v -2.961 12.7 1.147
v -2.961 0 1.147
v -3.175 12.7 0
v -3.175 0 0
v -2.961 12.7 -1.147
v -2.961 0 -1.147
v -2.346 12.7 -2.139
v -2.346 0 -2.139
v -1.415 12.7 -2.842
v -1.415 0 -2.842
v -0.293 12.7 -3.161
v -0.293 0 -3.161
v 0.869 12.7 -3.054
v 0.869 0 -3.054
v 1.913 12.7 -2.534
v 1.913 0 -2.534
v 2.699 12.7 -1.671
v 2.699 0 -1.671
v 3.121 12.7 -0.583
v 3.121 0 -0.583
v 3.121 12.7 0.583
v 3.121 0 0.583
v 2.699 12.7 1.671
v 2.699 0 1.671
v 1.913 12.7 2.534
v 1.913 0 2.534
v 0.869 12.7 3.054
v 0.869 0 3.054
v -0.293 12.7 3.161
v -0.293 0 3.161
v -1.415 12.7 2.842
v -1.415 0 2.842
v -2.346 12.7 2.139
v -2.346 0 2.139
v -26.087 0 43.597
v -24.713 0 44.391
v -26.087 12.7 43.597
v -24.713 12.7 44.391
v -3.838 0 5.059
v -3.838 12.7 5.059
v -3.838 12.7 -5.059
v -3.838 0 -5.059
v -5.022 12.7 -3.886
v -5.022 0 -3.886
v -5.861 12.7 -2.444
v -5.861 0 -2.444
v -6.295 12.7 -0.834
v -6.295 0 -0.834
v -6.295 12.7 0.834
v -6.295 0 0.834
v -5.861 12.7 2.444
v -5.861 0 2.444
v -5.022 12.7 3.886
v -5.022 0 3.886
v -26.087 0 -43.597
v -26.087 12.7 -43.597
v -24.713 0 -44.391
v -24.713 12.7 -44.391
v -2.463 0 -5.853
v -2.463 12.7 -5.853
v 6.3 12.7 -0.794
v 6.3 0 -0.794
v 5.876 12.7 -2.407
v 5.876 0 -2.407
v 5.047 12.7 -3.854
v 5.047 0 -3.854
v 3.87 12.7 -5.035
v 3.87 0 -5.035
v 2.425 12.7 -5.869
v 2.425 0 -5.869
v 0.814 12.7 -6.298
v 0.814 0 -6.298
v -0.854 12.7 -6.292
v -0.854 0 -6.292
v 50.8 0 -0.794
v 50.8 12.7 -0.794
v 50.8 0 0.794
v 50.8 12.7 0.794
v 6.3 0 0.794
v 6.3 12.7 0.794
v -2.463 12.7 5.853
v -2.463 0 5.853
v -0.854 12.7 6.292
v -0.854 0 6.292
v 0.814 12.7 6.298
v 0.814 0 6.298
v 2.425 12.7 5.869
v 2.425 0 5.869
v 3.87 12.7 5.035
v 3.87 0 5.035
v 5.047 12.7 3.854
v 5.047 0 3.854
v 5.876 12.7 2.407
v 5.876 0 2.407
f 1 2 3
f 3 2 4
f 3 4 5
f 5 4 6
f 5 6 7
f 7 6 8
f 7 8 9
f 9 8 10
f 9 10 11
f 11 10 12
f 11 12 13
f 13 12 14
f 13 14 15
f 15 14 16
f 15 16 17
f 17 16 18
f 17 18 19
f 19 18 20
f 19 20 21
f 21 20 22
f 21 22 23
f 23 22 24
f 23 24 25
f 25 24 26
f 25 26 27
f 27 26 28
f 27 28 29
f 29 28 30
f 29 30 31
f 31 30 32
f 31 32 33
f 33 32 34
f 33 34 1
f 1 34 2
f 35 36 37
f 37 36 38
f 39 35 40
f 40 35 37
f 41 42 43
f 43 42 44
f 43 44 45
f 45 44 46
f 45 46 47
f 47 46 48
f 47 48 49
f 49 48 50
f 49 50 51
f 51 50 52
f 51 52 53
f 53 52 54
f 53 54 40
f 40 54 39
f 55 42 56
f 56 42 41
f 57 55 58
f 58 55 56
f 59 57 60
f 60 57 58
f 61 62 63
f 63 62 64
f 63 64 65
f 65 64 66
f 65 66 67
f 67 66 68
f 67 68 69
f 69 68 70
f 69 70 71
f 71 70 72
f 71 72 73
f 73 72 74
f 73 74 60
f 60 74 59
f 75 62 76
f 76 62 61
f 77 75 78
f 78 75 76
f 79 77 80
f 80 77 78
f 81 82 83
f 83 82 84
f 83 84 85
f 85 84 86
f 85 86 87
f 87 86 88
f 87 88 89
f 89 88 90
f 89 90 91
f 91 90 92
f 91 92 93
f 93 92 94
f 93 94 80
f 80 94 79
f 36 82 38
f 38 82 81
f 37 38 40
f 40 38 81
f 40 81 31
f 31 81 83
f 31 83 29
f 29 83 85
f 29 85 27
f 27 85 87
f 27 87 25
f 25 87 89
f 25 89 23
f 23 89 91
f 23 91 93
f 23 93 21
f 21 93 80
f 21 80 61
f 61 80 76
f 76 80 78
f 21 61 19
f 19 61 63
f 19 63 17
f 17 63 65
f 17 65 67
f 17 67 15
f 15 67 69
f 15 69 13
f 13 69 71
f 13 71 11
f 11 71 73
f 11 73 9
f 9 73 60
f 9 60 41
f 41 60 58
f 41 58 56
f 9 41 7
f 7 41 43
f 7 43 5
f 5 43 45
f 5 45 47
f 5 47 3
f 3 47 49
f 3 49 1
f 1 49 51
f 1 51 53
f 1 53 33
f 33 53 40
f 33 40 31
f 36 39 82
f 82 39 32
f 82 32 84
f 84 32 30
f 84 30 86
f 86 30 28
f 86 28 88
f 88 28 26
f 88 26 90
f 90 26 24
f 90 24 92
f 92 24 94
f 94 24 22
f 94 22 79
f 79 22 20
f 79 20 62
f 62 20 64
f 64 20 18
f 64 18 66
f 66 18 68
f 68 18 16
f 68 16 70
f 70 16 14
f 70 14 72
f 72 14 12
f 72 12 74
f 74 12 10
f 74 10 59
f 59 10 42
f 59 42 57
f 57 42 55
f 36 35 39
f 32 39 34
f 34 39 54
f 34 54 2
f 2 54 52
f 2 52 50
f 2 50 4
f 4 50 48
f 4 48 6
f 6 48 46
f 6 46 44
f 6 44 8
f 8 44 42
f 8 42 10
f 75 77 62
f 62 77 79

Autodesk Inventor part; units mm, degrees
ref_plane "YZ Plane" through (0, 0, 0) normal (1, 0, 0) x (0, 1, 0)
ref_plane "XZ Plane" through (0, 0, 0) normal (0, 1, 0) x (-1, 0, 0)
ref_plane "XY Plane" through (0, 0, 0) normal (0, 0, 1) x (1, 0, 0)
sketch "Sketch1" plane through (0, 0, 0) normal (0, 1, 0) x (-1, 0, 0)
  circle A0 centre (0, 0) radius 6.35
  circle A1 centre (0, 0) radius 3.175
  line L0 (0, 0) -> (-25.4, 0)
  line L1 (0, 0) -> (12.7, -21.997)
  line L2 (0, 0) -> (12.7, 21.997)
  line L3 (12.0126, 22.3939) -> (13.3874, 21.6002)
  line L4 (13.3874, 21.6002) -> (-0.6874, 0.3969) construction
  line L5 (0.6874, -0.3969) -> (12.0126, 22.3939) construction
  line L6 (0, -0.7937) -> (0, 0)
  line L7 (0, 0.7937) -> (-25.4, -0.7937) construction
  line L8 (-25.4, 0.7937) -> (0, -0.7937) construction
  line L9 (0.6874, 0.3969) -> (12.0126, -22.3939) construction
  line L10 (13.3874, -21.6002) -> (-0.6874, -0.3969) construction
  line L11 (-25.4, -0.7937) -> (-3.0742, -0.7937)
  line L12 (-3.0742, 0.7937) -> (-25.4, 0.7937)
  line L13 (0.8497, 3.0592) -> (12.0126, 22.3939)
  line L14 (13.3874, 21.6002) -> (2.2245, 2.2654)
  line L15 (2.2245, -2.2654) -> (13.3874, -21.6002)
  line L16 (12.0126, -22.3939) -> (0.8497, -3.0592)
  line L17 (-25.4, 0) -> (-50.8, 0)
  line L18 (12.7, -21.997) -> (25.4, -43.9941)
  line L19 (12.7, 21.997) -> (25.4, 43.9941)
  line L20 (26.0874, 43.5972) -> (13.3874, 21.6002)
  line L21 (13.3874, 21.6002) -> (12.0126, 22.3939)
  line L22 (12.0126, 22.3939) -> (24.7126, 44.391)
  line L23 (24.7126, 44.391) -> (26.0874, 43.5972)
  line L24 (26.0874, 43.5972) -> (12.0126, 22.3939) construction
  line L25 (13.3874, 21.6002) -> (24.7126, 44.391) construction
  line L26 (26.0627, -43.5544) -> (12.0373, -22.4367) construction
  line L27 (13.4121, -21.643) -> (24.6879, -44.3482) construction
  line L28 (-50.8, 0.7937) -> (-25.4, 0.7937)
  line L29 (-25.4, -0.7937) -> (-50.8, -0.7937)
  line L30 (-50.8, -0.7937) -> (-50.8, 0.7937)
  line L31 (-50.8, 0.7937) -> (-25.4, -0.7937) construction
  line L32 (-25.4, 0.7937) -> (-50.8, -0.7937) construction
  line L33 (24.7126, -44.391) -> (12.0126, -22.3939)
  line L34 (13.3874, -21.6002) -> (26.0874, -43.5972)
  line L35 (26.0874, -43.5972) -> (24.7126, -44.391)
  line L36 (24.7126, -44.391) -> (13.3874, -21.6002) construction
  line L37 (12.0126, -22.3939) -> (26.0874, -43.5972) construction
  point P0 (6.35, 10.9985)
  point P1 (-12.7, 0)
  point P2 (6.35, -10.9985)
  point P3 (3.8375, -5.0593)
  point P4 (3.175, -5.4993)
  point P5 (-6.3002, -0.7937)
  point P6 (2.4627, -5.853)
  point P7 (3.8375, 5.0593)
  point P8 (2.4627, 5.853)
  point P9 (-6.3002, 0.7938)
  point P10 (19.05, 32.9956)
  point P11 (19.05, -32.9956)
  point P12 (-38.1, 0)
extrude "Extrusion1" add sketch "Sketch1" along normal blind 12.7 contours A0 L15 A1 L14 | L14 A1 L2 A0 | A0 L2 L3 L14 | L15 L34 L35 L18 L1 A0 | A0 L1 A1 L15 | L2 A1 L13 A0 | A0 L13 L3 L2 | L3 L19 L23 L20 | L1 L18 L35 L33 L16 A0 | A0 L16 A1 L1 | L13 A1 L12 A0 | L3 L22 L23 L19 | A0 L11 A1 L16 | L12 A1 L0 A0 | A0 L0 L17 L30 L28 L12 | L11 L29 L30 L17 L0 A0 | A0 L0 A1 L11
properties part number "brush_tpu_test_print"
